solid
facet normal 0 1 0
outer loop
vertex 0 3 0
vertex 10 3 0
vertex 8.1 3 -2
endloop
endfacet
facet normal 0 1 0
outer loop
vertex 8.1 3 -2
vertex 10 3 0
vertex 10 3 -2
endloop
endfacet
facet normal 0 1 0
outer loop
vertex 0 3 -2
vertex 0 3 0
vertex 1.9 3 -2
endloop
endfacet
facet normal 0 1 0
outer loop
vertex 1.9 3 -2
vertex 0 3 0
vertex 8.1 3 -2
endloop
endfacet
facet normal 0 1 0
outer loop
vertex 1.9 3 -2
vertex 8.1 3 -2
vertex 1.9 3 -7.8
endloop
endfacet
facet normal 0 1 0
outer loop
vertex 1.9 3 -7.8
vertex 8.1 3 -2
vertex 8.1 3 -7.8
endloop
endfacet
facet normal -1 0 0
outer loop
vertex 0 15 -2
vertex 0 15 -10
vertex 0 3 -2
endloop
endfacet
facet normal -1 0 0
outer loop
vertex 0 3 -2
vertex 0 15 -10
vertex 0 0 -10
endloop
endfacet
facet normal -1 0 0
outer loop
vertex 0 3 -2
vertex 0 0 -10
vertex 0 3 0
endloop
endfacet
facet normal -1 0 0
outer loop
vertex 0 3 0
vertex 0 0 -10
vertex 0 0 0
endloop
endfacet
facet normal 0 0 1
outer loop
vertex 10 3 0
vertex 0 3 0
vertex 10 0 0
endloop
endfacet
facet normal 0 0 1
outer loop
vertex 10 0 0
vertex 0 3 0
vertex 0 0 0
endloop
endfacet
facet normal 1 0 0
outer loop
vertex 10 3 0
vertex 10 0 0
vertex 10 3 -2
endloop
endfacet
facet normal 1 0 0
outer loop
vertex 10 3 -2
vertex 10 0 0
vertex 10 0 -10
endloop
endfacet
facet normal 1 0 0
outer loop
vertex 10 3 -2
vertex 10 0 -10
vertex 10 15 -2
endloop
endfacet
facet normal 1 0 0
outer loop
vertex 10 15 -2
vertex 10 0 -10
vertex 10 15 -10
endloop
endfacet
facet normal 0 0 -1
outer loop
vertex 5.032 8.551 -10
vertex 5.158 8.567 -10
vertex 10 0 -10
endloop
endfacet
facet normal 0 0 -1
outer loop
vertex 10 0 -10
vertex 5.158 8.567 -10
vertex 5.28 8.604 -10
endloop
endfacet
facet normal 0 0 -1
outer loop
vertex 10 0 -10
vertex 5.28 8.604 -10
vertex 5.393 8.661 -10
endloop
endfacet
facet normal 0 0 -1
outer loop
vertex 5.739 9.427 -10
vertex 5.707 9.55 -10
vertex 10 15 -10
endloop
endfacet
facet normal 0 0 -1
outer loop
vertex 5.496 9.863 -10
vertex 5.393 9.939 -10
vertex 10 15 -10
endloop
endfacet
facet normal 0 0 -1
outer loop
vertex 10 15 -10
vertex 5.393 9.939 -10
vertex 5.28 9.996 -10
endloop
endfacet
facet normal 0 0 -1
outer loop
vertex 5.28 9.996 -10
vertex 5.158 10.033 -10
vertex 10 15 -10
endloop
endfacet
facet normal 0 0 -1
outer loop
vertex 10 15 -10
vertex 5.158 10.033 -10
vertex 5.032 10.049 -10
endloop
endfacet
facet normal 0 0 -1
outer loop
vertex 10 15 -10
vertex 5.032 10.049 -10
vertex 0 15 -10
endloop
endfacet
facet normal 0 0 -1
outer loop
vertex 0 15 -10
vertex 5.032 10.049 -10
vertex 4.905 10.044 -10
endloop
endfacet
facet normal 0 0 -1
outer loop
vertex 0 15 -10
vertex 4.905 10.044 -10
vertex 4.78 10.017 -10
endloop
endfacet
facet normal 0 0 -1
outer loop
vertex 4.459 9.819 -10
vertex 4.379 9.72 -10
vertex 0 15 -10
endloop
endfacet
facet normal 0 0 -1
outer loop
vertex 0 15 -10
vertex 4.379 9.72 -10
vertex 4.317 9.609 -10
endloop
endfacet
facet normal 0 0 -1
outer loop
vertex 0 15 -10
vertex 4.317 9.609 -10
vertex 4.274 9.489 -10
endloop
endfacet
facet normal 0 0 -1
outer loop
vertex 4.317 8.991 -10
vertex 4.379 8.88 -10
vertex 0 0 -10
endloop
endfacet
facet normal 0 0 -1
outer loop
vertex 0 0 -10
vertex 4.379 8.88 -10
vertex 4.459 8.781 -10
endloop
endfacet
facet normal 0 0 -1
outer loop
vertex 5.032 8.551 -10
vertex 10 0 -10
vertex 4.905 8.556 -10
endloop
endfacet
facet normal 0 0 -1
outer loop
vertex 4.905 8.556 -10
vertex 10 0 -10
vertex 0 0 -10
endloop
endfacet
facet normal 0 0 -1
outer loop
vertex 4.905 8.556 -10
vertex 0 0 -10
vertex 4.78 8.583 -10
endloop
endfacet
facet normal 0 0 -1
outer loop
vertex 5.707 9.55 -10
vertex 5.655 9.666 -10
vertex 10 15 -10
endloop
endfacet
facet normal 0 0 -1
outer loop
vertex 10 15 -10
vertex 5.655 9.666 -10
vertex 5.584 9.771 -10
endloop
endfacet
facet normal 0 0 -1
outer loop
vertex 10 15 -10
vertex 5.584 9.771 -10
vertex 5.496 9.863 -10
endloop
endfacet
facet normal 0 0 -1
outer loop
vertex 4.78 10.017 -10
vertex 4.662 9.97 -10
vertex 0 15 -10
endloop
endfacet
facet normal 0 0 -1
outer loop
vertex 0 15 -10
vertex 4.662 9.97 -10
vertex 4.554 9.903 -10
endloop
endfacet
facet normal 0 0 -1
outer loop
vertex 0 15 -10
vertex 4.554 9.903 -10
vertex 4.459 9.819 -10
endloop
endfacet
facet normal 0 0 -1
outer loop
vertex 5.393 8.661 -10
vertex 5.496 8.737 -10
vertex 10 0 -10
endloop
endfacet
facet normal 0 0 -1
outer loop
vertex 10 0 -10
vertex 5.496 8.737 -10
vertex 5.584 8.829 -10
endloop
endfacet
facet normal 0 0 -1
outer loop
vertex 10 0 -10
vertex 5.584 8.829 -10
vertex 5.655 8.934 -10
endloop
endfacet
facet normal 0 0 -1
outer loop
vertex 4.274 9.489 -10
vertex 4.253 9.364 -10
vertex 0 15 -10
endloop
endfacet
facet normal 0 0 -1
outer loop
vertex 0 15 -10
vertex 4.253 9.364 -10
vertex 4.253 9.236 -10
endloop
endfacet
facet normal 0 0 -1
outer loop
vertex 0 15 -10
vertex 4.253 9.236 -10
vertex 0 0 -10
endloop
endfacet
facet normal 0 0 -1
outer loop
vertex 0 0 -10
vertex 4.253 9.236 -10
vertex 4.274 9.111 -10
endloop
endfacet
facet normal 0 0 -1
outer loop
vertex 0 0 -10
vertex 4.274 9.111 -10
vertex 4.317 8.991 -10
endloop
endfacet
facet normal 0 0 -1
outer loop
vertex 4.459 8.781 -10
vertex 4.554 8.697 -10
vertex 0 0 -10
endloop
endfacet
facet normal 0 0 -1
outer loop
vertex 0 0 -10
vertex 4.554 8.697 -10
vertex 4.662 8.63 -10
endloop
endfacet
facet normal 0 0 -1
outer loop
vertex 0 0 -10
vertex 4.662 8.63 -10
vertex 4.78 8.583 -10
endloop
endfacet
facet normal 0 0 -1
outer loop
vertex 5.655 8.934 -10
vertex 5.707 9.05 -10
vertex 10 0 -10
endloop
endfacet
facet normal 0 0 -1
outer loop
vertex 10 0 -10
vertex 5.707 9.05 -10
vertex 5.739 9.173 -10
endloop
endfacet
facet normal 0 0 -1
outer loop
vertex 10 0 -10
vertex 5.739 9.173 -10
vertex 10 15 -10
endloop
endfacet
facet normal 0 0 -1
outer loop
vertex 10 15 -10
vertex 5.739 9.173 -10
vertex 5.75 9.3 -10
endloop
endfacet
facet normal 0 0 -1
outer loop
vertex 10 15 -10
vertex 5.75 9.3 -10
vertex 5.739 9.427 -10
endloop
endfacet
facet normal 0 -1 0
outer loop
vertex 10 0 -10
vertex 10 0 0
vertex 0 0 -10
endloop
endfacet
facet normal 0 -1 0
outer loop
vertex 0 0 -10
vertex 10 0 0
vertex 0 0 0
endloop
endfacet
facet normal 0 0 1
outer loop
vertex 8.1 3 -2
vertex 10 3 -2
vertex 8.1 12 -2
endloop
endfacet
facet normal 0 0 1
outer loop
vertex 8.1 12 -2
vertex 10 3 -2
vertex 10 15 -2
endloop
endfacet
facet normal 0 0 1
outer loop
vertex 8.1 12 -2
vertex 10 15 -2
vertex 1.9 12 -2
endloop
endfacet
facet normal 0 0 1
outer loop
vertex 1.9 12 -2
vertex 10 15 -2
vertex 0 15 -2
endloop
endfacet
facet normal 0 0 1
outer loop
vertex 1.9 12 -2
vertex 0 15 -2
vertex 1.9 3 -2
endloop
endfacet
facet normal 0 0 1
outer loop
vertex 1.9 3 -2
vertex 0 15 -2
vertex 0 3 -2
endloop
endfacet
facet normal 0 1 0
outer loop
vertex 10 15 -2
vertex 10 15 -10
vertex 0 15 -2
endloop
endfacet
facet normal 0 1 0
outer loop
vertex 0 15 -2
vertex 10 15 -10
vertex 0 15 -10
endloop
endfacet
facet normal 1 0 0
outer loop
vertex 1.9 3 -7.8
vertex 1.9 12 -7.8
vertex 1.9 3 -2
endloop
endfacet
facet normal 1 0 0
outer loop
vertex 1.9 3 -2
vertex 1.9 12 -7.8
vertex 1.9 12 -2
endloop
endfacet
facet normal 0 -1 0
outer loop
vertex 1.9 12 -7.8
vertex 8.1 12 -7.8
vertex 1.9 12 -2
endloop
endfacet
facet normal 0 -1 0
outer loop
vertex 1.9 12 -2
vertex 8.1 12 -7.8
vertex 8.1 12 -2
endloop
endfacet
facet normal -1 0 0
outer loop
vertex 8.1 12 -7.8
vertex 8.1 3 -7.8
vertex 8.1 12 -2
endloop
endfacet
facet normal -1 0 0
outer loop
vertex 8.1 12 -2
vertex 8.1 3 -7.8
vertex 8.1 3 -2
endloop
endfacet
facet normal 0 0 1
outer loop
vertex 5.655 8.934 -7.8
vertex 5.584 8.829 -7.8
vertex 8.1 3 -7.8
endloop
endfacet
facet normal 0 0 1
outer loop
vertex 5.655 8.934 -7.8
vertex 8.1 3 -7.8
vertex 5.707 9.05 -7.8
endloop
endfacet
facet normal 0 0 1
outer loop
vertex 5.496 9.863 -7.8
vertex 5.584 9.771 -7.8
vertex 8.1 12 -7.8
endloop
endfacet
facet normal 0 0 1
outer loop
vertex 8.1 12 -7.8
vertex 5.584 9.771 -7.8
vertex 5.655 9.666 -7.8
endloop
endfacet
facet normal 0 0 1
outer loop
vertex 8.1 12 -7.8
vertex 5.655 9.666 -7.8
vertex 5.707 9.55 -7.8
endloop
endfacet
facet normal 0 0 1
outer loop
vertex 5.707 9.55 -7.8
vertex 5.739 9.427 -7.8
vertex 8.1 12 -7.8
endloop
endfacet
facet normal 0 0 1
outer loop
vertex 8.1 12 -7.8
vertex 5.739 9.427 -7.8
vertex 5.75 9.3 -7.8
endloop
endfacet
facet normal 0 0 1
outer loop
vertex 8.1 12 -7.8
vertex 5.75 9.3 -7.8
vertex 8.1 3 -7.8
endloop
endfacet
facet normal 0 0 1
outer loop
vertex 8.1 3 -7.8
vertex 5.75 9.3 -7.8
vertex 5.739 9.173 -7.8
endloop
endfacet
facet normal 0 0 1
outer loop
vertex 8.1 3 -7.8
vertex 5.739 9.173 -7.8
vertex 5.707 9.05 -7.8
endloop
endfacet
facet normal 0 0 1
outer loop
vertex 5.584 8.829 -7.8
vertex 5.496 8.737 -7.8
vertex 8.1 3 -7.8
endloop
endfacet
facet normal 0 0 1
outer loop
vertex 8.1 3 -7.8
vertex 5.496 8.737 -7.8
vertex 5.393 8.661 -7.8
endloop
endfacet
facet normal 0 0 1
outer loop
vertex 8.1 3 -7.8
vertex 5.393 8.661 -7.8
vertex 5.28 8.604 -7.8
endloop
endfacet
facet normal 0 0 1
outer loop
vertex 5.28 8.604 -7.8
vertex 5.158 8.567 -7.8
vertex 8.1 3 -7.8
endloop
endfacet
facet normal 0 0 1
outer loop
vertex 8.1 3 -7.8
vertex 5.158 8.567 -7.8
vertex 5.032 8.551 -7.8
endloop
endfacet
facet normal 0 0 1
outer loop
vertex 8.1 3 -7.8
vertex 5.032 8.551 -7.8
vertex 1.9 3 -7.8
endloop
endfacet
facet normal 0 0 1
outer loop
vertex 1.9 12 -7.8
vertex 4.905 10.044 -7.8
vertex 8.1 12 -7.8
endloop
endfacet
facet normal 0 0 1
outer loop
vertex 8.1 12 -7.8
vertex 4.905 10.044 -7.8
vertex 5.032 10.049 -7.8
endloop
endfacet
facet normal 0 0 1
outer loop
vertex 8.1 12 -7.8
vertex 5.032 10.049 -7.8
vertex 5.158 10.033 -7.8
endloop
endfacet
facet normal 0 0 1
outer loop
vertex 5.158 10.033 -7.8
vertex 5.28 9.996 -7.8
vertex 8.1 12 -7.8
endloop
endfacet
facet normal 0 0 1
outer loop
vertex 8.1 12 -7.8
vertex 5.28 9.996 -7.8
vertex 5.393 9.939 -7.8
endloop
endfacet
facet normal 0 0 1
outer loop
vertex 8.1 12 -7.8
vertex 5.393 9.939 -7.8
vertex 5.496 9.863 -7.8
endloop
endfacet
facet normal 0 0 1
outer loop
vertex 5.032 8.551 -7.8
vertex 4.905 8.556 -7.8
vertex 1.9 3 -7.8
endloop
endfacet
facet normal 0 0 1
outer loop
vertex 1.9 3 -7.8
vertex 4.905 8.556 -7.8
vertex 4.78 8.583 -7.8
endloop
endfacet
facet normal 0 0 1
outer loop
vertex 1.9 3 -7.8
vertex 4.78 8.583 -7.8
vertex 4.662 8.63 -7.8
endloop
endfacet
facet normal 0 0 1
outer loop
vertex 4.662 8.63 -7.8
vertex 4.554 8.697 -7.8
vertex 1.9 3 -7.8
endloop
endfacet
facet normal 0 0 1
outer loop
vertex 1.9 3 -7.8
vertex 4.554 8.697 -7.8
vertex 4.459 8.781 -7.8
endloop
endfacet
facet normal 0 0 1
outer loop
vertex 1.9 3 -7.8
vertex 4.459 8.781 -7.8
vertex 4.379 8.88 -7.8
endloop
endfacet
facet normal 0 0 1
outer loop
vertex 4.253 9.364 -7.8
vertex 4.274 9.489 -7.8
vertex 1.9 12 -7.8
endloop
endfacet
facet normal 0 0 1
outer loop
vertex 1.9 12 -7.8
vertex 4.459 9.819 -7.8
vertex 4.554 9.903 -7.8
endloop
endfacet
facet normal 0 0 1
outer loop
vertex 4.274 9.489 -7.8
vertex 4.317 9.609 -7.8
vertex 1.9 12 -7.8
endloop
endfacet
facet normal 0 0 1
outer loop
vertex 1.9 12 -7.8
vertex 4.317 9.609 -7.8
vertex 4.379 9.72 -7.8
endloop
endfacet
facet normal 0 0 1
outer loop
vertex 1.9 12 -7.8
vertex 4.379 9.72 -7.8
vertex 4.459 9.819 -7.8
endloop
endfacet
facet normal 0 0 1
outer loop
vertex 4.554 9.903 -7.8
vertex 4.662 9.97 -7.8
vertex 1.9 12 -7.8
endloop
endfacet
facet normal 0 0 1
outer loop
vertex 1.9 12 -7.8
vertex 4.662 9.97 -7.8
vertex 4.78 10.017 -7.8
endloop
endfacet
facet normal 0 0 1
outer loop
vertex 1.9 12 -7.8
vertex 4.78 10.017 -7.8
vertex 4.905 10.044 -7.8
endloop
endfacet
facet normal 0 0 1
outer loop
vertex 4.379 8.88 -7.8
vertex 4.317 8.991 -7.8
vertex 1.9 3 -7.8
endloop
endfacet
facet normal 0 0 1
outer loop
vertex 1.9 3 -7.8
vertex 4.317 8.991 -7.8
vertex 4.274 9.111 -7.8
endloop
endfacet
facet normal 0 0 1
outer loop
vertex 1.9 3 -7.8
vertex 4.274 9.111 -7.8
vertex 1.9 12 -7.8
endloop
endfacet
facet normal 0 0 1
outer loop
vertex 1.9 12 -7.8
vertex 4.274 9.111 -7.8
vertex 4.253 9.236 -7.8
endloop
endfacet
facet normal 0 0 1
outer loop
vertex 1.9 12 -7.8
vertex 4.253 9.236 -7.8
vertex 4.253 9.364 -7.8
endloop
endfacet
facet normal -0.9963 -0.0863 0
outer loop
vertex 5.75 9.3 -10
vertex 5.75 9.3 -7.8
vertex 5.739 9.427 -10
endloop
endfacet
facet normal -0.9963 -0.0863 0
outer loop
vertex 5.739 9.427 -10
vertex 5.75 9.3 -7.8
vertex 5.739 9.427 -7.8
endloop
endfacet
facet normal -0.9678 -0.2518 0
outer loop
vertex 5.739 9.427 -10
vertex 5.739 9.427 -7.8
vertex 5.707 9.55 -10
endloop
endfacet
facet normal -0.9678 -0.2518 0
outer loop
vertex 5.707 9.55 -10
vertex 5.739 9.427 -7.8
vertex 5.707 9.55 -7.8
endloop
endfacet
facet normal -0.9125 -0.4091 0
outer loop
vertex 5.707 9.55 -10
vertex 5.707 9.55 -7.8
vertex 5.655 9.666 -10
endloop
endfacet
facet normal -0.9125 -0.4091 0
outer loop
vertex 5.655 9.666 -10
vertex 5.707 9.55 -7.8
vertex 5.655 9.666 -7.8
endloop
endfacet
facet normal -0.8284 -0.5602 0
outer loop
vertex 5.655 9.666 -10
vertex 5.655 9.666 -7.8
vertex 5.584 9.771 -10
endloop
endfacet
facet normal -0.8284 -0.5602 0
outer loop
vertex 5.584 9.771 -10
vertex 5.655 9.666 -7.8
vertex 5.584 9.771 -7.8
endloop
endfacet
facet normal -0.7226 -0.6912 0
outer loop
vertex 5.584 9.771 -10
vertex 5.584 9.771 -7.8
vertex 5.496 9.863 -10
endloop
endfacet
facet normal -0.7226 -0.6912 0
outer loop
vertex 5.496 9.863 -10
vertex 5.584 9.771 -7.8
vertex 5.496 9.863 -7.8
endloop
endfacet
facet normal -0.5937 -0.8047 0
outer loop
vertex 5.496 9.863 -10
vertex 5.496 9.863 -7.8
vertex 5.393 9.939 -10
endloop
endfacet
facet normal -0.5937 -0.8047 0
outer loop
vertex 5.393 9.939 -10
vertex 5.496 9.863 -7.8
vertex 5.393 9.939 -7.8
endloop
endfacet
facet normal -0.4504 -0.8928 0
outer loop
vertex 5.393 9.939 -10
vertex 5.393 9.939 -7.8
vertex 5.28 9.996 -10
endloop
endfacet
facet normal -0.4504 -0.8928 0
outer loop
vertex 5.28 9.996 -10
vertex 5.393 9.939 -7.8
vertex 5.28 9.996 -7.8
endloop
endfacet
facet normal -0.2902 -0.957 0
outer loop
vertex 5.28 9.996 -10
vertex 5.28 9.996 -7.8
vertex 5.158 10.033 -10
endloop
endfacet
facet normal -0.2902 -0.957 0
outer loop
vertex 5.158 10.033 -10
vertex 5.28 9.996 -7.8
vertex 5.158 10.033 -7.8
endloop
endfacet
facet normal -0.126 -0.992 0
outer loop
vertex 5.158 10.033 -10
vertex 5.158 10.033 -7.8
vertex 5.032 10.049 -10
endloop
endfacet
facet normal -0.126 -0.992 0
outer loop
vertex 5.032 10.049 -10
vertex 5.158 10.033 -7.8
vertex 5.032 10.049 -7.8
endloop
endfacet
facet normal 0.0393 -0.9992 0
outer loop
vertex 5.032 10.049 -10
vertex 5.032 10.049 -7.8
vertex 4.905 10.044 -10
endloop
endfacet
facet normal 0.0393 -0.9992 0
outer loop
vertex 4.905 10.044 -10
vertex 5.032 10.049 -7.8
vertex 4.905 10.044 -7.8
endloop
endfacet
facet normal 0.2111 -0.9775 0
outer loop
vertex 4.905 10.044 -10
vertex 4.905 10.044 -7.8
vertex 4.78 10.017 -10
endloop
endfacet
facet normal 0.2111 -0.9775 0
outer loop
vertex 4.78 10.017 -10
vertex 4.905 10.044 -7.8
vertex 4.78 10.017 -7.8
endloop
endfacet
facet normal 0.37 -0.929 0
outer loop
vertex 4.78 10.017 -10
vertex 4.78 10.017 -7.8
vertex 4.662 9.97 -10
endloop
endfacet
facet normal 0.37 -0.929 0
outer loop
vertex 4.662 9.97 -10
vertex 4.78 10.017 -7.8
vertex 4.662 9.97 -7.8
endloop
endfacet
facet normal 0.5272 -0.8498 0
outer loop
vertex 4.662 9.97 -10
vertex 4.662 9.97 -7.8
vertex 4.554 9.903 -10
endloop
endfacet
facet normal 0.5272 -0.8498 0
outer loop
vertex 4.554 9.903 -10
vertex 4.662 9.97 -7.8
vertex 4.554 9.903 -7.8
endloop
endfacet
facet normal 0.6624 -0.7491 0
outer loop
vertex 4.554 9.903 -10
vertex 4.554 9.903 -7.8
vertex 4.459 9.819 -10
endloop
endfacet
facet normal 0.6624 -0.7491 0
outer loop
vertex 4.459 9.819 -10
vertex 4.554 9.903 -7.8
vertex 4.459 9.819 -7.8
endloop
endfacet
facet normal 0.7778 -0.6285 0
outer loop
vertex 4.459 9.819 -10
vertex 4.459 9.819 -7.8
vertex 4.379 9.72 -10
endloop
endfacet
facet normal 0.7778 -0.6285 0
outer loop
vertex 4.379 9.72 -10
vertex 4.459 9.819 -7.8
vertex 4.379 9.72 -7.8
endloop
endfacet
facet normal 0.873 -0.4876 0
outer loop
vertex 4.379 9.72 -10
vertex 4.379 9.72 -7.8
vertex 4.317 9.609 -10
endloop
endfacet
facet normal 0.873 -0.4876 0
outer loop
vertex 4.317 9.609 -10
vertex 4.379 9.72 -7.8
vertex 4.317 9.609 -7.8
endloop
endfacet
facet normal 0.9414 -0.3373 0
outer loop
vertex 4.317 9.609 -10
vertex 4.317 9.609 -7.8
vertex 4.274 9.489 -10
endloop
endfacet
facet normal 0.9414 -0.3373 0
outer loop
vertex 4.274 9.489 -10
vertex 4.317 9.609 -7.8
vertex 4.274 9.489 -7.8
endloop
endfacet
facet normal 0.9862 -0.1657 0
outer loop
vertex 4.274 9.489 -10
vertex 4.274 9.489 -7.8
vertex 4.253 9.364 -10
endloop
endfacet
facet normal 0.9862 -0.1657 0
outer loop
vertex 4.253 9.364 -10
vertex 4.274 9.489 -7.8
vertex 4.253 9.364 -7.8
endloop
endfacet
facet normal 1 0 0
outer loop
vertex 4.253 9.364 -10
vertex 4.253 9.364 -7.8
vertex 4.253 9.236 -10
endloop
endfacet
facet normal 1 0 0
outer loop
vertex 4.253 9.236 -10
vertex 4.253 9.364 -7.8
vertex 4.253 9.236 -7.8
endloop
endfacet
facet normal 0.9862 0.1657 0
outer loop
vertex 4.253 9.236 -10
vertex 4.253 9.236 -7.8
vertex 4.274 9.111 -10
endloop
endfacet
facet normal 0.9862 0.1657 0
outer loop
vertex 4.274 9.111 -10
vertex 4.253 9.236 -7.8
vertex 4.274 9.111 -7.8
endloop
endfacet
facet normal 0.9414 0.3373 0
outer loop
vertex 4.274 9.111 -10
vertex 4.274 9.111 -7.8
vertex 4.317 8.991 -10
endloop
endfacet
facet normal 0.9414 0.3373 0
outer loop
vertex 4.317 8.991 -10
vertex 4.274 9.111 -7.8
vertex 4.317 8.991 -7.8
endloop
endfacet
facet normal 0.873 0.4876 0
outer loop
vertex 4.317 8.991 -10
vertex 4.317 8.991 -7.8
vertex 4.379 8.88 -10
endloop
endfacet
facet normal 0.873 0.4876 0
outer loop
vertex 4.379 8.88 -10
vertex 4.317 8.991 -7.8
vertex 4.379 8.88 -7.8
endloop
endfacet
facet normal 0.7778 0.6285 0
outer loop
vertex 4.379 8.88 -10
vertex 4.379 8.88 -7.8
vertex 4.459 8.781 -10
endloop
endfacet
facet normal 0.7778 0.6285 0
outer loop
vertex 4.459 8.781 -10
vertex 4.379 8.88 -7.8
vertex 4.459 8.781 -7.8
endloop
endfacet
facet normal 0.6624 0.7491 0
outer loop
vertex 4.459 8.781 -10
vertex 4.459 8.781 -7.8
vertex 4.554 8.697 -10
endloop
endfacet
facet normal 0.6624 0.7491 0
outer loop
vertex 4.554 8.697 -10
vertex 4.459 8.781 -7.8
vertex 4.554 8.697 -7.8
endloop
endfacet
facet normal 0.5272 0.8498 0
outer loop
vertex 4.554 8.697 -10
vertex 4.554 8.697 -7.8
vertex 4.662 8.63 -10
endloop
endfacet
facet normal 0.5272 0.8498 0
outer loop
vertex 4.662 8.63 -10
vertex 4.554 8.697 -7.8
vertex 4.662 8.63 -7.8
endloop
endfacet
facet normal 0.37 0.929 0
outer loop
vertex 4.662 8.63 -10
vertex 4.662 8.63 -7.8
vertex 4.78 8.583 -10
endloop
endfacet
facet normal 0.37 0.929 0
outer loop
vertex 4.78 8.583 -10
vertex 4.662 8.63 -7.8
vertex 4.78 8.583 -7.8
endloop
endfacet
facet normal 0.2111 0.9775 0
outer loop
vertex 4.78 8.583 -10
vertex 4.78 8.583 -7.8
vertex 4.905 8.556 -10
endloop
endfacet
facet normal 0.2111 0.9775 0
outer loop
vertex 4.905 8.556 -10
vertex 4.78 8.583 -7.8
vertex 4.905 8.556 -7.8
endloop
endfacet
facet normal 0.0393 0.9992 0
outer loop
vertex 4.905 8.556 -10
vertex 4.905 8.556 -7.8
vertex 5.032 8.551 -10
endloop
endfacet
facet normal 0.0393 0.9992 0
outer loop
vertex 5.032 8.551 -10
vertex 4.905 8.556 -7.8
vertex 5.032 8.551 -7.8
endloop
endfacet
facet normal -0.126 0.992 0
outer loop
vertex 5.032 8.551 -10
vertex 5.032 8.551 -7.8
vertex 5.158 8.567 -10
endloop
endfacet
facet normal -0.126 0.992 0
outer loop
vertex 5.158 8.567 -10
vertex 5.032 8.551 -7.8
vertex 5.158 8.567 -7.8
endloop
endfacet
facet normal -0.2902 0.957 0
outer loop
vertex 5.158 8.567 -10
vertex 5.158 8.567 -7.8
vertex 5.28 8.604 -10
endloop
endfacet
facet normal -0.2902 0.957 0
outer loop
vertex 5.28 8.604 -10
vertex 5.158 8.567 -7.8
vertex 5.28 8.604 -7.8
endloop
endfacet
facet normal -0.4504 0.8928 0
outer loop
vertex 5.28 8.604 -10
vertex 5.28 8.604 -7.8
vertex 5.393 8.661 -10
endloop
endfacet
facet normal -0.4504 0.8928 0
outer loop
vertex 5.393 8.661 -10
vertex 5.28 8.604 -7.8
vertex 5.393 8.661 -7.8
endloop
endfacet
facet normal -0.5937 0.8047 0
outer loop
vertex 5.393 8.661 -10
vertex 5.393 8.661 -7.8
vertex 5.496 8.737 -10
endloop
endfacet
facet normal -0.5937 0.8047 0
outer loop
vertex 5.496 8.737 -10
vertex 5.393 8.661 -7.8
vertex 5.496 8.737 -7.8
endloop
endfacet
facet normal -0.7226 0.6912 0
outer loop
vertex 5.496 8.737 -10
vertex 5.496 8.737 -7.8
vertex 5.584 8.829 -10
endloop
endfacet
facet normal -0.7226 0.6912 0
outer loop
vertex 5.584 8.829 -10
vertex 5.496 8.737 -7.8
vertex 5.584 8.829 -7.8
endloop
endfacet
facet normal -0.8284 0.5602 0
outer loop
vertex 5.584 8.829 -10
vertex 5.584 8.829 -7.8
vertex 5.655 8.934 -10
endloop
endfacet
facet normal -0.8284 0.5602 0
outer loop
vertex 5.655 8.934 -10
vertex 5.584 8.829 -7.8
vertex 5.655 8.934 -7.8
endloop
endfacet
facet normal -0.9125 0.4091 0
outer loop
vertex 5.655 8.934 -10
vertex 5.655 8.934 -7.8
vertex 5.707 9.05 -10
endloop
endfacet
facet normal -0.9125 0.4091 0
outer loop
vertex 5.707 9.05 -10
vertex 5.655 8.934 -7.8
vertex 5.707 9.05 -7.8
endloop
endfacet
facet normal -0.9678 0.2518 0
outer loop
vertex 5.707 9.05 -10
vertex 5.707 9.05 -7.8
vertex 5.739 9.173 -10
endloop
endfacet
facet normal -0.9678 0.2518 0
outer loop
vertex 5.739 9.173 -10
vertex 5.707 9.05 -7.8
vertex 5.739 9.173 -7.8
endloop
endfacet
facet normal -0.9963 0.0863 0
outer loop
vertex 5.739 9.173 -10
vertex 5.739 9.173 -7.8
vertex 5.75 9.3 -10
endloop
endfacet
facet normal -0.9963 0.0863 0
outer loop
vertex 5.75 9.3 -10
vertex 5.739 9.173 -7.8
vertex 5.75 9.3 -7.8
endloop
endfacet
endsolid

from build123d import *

# Parameters (mm, degrees)
SKETCH1_W           = 10
SKETCH1_H           = 10
BOSS_EXTRUDE1_DEPTH = 3
SKETCH2_W           = 10
SKETCH2_H           = 8
BOSS_EXTRUDE2_DEPTH = 12
SKETCH3_W           = 6.2
SKETCH3_H           = 9
CUT_EXTRUDE1_DEPTH  = 5.8
SKETCH4_R           = 0.75
CUT_EXTRUDE2_DEPTH  = 20.64281039


with BuildPart() as part:
    # Sketch1 → Boss-Extrude1 (new body)
    with BuildSketch(Plane(origin=(0, 0, 0), x_dir=(1, 0, 0), z_dir=(0, 1, 0))):
        with Locations((5, 5)):
            Rectangle(SKETCH1_W, SKETCH1_H)
    extrude(amount=BOSS_EXTRUDE1_DEPTH)

    # Sketch2 → Boss-Extrude2 (add)
    with BuildSketch(Plane(origin=(0, 3, 0), x_dir=(1, 0, 0), z_dir=(0, 1, 0))):
        with Locations((5, 6)):
            Rectangle(SKETCH2_W, SKETCH2_H)
    extrude(amount=BOSS_EXTRUDE2_DEPTH)

    # Sketch3 → Cut-Extrude1 (cut)
    with BuildSketch(Plane.XY.offset(-2)):
        with Locations((5, 7.5)):
            Rectangle(SKETCH3_W, SKETCH3_H)
    extrude(amount=-CUT_EXTRUDE1_DEPTH, mode=Mode.SUBTRACT)

    # Sketch4 → Cut-Extrude2 (cut, through all)
    with BuildSketch(Plane.XY.offset(-7.8)):
        with Locations((5, 9.3)):
            Circle(SKETCH4_R)
    extrude(amount=-CUT_EXTRUDE2_DEPTH, mode=Mode.SUBTRACT)


solid = part.part
